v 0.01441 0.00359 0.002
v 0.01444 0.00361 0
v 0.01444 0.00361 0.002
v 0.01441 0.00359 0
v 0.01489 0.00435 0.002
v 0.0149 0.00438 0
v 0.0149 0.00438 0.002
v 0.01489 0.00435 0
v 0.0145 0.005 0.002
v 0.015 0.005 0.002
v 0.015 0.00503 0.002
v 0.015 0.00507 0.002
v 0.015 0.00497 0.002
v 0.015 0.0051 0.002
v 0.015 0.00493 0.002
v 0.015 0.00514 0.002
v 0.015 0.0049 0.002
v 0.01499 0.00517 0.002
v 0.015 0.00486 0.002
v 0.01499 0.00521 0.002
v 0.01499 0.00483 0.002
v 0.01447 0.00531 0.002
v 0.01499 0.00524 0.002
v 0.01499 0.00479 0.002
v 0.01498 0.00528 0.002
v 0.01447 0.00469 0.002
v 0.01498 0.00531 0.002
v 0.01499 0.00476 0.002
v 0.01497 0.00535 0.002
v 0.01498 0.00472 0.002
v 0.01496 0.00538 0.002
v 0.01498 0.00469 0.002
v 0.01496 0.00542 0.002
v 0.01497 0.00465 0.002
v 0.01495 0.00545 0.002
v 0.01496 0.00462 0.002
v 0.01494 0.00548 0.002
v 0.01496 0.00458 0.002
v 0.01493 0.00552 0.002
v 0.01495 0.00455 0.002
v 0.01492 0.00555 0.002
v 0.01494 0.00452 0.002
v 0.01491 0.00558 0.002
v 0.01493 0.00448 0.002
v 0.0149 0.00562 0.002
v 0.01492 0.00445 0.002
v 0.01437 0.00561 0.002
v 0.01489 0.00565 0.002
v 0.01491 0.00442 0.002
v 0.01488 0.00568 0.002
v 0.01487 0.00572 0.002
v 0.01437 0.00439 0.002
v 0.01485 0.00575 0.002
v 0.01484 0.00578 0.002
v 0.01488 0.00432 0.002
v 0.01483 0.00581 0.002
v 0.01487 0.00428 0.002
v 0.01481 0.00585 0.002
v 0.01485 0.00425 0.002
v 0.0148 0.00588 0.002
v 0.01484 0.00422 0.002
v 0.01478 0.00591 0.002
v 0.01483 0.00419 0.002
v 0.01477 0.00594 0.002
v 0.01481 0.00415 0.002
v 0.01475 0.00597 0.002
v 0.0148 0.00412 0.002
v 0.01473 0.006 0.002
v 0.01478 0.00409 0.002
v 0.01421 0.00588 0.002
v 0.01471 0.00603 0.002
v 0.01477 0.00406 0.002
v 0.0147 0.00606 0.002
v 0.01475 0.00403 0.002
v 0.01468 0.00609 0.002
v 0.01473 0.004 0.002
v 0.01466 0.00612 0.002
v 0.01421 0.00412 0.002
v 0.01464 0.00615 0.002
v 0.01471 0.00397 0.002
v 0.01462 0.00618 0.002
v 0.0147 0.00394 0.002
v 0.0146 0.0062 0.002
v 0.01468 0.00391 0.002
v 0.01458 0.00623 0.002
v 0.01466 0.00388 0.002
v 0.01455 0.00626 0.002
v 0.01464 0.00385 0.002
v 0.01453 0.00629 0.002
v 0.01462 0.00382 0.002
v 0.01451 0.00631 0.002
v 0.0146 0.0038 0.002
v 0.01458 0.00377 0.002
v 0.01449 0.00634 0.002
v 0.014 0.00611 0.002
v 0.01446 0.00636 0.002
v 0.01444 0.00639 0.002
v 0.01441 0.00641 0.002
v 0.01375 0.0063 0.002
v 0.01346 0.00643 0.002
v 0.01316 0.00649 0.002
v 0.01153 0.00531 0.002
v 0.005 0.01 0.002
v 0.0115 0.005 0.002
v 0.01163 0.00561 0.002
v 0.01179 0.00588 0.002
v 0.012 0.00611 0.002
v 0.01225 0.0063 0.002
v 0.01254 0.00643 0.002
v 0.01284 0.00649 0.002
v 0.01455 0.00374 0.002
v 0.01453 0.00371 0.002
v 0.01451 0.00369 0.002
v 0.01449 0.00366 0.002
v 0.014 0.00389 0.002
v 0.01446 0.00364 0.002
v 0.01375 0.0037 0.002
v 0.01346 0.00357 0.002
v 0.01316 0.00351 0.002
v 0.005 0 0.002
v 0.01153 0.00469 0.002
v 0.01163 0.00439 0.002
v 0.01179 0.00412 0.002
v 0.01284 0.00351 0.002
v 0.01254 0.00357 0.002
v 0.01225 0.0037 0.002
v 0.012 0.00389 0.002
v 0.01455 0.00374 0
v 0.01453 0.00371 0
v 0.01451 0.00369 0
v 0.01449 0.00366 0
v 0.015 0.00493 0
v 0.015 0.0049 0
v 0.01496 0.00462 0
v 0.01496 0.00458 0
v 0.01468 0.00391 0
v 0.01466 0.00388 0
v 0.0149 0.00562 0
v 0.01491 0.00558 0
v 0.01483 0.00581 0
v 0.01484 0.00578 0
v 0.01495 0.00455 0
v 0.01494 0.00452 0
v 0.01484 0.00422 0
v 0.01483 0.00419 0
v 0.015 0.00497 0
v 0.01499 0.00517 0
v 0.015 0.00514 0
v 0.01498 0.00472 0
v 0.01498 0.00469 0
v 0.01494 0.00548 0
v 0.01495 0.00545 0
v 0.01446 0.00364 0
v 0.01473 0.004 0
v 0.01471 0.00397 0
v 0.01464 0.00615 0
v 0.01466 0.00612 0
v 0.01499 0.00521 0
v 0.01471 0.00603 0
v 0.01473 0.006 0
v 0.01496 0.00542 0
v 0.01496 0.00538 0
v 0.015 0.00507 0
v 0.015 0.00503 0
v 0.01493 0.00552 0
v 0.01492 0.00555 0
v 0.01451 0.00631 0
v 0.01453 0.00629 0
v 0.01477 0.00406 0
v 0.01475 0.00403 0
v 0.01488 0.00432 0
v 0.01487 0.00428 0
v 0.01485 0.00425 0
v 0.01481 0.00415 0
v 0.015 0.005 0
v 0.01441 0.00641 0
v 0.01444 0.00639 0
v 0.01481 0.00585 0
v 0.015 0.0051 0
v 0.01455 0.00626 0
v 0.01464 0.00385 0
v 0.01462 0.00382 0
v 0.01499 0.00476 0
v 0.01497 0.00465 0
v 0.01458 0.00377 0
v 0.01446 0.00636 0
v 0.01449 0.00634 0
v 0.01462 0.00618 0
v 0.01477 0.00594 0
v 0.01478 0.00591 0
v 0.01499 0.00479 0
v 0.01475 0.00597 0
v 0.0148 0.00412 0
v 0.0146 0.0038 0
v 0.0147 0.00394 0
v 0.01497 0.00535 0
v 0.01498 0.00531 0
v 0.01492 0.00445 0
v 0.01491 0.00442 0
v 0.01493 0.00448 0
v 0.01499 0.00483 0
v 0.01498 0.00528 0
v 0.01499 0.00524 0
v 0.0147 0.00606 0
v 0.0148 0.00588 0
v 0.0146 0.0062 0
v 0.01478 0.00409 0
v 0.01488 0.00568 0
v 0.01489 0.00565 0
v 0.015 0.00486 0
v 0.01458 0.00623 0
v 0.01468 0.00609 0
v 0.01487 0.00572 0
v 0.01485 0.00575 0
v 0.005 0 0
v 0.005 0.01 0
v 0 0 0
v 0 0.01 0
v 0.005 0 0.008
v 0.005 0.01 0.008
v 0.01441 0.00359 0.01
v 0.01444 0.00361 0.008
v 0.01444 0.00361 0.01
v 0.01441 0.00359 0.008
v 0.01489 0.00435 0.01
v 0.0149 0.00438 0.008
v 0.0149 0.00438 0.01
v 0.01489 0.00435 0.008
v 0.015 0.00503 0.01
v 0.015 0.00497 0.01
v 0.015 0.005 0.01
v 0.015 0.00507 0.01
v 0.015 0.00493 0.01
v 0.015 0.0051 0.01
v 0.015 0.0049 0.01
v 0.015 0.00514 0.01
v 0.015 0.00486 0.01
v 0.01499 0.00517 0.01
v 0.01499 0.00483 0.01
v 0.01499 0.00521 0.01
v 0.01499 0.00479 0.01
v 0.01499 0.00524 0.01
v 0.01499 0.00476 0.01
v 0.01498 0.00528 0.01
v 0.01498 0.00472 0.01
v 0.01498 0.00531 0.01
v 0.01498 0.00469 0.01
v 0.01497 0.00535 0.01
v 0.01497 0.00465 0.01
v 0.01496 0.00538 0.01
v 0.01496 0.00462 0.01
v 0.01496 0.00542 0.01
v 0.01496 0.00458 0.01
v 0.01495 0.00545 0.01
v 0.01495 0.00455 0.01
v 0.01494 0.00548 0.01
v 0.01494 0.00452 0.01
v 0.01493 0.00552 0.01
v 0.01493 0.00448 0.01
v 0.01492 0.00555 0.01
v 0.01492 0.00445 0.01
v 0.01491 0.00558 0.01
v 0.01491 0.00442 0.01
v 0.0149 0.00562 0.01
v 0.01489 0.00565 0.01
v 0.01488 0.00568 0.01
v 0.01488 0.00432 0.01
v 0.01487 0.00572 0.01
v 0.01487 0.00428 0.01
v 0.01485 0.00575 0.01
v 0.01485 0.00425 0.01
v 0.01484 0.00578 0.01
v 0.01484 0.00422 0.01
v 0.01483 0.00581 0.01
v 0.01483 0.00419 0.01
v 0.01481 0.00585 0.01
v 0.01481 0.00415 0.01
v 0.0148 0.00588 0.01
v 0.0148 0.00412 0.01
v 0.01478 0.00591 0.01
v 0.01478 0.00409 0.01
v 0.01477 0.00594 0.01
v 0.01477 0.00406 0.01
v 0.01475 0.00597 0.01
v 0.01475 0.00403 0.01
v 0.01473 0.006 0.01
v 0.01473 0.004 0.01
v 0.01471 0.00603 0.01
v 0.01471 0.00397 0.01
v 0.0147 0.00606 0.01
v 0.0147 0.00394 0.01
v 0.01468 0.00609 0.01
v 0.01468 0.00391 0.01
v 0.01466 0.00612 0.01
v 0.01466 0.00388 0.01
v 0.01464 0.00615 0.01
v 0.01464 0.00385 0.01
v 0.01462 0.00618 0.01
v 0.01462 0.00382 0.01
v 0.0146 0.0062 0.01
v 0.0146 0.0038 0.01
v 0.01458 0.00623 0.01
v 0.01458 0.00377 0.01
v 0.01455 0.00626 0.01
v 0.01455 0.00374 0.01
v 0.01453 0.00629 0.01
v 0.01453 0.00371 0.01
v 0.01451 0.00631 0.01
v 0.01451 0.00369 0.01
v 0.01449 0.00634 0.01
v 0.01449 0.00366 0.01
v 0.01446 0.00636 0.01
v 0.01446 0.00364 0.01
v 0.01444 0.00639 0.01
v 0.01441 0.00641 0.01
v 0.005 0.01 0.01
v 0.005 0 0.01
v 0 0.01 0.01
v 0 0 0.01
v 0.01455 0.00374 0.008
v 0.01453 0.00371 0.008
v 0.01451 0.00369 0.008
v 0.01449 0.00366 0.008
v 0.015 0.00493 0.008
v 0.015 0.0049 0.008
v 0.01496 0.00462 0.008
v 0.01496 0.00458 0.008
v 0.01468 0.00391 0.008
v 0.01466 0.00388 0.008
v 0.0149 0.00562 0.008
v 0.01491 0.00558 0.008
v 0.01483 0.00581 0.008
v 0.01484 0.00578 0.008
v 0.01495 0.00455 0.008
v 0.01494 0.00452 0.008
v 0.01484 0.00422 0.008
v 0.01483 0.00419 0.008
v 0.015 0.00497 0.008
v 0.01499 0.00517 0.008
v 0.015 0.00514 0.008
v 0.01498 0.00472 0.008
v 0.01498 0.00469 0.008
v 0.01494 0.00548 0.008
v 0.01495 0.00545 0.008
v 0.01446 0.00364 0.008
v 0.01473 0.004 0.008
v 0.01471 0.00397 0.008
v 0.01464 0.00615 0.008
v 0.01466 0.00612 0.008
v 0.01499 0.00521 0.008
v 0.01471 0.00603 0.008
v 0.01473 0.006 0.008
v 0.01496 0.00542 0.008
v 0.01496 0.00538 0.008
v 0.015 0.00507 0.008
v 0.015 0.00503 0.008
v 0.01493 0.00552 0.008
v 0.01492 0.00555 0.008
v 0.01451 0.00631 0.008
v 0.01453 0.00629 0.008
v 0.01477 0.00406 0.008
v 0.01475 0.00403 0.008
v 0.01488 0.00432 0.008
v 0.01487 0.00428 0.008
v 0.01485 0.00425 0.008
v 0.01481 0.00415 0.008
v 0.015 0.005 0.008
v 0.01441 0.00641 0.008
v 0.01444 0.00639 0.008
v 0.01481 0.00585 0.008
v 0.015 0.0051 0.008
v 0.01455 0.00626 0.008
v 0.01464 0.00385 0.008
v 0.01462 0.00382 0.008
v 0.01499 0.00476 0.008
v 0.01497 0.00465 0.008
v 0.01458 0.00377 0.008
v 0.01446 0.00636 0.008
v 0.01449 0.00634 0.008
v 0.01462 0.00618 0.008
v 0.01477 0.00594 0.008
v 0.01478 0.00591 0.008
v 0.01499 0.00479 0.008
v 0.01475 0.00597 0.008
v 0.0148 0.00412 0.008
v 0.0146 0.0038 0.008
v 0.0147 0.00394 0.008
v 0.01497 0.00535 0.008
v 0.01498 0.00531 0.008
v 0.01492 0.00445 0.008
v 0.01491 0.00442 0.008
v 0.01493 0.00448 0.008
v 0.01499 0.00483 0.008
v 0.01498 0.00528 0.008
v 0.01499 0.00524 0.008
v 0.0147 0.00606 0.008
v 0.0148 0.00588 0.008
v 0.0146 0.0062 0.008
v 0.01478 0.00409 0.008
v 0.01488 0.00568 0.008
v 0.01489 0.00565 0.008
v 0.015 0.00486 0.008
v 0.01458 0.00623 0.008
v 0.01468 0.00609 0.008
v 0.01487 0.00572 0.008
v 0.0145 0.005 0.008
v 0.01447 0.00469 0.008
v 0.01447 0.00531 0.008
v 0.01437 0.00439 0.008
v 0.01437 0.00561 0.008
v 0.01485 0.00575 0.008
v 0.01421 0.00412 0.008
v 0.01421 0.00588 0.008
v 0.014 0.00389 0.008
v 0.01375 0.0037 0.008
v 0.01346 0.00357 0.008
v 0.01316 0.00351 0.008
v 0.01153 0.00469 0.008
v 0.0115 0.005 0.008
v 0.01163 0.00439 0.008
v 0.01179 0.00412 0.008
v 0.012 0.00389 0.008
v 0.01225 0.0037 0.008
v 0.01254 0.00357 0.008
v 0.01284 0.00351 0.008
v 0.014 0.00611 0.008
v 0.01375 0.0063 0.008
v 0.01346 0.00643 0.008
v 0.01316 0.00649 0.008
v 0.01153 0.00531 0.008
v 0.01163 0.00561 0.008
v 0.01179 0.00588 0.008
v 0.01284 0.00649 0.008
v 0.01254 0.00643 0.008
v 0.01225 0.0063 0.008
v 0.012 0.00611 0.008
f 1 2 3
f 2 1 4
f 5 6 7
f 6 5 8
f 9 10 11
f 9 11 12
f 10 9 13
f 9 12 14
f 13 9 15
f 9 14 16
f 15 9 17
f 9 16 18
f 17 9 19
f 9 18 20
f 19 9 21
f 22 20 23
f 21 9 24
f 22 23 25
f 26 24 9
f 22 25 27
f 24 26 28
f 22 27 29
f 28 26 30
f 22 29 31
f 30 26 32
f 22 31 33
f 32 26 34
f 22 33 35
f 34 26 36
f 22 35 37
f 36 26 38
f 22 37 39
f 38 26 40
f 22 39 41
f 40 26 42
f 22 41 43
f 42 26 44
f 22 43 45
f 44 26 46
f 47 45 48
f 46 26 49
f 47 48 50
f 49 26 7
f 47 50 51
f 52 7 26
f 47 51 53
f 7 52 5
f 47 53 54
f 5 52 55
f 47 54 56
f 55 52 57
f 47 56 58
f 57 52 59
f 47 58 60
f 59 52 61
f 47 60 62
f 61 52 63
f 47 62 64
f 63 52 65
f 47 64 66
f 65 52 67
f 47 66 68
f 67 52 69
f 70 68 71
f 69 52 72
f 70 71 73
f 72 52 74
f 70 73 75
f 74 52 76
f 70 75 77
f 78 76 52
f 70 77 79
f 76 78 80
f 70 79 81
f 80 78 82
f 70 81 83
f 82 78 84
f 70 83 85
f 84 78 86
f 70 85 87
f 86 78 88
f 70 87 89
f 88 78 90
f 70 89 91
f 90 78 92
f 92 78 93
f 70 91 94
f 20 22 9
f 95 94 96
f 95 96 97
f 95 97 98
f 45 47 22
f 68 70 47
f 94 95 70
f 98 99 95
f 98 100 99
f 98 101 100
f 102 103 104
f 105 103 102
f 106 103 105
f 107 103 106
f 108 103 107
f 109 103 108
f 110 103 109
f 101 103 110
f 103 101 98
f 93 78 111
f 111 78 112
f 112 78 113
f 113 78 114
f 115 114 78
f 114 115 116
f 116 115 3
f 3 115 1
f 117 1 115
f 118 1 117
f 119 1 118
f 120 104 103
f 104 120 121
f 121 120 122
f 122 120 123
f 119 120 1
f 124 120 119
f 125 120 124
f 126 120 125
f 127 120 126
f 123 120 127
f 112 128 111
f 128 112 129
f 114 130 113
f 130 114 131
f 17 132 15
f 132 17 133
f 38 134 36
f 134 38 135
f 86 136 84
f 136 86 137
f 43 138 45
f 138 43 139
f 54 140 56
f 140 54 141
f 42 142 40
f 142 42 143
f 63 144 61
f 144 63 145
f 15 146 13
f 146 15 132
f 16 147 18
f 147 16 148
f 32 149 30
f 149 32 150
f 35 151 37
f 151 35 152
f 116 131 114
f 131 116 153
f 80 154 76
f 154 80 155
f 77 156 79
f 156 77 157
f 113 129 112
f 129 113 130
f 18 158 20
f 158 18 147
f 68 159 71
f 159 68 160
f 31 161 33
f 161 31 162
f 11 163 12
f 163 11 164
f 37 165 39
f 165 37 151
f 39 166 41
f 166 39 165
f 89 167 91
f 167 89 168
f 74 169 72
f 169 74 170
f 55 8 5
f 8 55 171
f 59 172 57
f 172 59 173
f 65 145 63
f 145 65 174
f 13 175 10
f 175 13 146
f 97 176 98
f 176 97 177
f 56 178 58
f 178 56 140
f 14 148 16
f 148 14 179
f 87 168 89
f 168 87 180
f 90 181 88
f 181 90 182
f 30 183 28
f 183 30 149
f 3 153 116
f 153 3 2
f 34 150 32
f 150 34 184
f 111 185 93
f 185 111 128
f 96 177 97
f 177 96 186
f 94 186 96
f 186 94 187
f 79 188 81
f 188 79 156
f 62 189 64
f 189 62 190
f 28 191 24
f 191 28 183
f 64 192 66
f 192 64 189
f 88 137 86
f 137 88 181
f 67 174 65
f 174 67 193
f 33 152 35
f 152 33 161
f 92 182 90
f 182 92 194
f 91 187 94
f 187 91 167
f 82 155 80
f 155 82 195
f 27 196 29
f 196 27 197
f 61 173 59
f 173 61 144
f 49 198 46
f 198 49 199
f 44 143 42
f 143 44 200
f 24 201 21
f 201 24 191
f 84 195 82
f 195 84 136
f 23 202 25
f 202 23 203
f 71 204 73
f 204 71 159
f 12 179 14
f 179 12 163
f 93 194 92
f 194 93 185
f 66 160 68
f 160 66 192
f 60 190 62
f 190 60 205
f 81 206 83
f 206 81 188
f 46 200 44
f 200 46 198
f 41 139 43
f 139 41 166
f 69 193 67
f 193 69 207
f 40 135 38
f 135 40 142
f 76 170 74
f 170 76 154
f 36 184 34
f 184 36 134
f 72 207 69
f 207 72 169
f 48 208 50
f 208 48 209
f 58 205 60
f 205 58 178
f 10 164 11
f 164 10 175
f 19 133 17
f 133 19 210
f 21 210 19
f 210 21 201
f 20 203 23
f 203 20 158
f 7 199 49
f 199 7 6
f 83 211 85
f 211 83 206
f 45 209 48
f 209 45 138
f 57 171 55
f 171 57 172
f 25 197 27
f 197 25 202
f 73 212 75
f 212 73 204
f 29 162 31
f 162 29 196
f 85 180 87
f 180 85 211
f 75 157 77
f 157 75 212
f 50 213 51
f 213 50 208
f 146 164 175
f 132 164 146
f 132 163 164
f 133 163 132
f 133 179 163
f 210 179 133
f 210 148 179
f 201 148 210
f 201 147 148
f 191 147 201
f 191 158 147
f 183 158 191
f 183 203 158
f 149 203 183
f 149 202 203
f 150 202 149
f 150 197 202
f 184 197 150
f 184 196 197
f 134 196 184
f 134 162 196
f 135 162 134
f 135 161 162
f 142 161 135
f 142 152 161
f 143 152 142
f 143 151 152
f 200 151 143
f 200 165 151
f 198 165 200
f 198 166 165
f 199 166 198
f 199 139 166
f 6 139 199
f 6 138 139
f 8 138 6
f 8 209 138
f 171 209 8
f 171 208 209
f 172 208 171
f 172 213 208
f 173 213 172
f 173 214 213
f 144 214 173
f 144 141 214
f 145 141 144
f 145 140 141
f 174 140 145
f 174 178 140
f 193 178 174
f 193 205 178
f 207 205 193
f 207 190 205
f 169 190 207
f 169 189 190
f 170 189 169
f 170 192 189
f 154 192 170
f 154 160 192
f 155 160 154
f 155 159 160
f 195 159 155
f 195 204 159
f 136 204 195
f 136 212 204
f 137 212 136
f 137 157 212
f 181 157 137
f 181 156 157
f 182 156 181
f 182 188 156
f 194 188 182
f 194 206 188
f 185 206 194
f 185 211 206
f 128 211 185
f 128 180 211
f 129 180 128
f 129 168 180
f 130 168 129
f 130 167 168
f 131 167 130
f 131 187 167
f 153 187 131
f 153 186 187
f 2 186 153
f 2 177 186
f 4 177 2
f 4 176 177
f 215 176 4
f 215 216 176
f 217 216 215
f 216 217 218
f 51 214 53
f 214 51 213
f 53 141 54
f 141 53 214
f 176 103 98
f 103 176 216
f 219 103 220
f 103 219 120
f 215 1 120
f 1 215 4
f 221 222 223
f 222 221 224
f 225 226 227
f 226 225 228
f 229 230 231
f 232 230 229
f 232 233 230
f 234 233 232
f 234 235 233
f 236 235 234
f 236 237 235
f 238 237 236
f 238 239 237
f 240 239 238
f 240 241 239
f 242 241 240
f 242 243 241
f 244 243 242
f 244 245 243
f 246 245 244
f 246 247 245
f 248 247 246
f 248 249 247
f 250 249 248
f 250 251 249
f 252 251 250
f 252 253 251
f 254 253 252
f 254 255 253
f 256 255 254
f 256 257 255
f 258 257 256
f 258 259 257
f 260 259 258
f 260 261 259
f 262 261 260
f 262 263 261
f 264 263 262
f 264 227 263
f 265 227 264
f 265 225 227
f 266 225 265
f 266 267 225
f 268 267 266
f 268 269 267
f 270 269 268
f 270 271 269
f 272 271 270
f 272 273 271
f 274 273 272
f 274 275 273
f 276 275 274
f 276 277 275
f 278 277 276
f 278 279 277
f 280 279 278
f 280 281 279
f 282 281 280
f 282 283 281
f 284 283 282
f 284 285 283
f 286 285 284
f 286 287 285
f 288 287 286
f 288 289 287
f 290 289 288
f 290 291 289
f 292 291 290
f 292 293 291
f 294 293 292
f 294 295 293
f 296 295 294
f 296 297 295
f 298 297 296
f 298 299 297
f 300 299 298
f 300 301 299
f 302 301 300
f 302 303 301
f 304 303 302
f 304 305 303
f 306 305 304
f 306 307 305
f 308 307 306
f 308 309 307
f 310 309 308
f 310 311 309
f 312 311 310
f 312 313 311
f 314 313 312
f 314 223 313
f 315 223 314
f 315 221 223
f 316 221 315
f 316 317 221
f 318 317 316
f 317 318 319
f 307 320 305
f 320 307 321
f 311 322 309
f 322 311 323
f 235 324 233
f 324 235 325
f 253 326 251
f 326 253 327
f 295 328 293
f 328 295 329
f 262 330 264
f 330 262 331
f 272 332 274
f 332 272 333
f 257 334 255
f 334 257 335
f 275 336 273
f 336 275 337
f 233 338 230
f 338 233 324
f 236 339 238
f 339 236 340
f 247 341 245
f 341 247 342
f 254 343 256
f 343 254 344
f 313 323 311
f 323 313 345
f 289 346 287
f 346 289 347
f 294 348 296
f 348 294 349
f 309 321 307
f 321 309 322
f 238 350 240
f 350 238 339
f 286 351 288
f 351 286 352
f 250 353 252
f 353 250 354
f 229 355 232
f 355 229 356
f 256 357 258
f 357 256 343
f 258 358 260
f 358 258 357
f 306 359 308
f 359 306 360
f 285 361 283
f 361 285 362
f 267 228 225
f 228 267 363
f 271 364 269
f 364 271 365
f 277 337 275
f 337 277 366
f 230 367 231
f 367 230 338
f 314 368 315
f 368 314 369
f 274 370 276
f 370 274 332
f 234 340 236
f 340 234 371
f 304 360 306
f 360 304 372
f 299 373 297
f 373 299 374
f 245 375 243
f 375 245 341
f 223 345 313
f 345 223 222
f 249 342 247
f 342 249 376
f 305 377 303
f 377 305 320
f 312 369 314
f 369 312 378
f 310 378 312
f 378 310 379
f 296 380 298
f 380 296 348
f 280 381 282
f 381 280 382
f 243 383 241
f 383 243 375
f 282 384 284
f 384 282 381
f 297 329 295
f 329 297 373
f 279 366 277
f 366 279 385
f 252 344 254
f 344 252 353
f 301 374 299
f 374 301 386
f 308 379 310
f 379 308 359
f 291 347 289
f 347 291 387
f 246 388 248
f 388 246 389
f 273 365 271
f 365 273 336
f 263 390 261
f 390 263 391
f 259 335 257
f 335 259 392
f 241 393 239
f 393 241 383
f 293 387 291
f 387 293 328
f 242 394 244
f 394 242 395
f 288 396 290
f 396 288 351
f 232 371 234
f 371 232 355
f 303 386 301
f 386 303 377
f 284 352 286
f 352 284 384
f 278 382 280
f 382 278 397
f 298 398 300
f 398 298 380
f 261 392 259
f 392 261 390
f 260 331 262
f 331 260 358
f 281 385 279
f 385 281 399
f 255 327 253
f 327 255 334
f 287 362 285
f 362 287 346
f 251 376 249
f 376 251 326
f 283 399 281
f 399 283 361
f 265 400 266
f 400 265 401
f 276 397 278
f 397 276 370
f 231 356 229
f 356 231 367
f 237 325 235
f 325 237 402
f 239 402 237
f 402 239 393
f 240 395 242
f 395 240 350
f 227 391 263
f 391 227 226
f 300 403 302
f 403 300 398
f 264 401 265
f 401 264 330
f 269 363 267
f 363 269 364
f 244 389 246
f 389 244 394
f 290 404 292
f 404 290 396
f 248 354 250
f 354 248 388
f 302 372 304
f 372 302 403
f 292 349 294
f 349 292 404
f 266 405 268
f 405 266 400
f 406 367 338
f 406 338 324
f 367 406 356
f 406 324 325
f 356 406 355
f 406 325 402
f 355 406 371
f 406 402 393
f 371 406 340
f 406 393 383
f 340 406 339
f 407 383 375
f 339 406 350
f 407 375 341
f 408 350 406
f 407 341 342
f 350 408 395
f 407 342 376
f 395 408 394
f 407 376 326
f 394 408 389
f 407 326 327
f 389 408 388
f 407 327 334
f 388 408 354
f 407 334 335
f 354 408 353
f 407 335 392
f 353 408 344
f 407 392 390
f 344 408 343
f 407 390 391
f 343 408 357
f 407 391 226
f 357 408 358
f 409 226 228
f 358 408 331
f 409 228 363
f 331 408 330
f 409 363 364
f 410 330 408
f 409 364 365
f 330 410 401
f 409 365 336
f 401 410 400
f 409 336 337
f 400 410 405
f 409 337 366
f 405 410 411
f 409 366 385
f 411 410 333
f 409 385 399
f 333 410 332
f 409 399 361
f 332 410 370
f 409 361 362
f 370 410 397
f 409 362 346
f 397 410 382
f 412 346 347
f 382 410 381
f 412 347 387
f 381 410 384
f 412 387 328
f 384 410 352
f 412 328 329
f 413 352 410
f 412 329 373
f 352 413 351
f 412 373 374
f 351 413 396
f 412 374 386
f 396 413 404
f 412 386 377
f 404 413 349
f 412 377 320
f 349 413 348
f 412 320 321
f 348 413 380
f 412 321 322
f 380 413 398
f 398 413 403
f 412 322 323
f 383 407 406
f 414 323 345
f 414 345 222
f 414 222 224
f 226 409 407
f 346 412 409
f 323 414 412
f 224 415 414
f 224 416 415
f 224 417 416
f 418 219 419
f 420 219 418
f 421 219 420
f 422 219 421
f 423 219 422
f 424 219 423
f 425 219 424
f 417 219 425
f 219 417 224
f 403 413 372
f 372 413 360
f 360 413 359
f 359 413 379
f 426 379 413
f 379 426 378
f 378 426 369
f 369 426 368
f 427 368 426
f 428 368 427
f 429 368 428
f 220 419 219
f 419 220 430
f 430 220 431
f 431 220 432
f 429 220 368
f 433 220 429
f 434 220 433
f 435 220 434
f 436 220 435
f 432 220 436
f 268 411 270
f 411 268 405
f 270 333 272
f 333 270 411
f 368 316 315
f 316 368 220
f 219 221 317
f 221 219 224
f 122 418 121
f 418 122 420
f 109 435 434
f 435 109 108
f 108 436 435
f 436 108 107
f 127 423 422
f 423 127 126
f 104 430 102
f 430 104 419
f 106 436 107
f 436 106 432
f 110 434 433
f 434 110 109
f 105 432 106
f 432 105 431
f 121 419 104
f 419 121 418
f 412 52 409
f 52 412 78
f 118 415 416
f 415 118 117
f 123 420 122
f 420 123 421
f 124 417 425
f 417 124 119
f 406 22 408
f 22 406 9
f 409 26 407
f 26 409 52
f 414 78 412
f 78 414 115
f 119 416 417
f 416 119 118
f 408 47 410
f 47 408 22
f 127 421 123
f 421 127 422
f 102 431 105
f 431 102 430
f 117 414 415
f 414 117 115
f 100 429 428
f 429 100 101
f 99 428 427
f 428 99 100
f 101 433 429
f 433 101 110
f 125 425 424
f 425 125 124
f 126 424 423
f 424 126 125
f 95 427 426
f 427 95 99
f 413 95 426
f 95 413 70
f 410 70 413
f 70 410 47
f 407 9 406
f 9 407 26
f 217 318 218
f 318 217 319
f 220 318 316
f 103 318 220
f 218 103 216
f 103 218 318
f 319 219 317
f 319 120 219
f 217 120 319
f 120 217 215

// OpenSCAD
scale([0.001, 0.001, 0.001])
union() {    
    cube([5, 10, 10]);
    
    translate([15, 10, 0])
    rotate([0, 0, 180])
    get_joint();
}

module get_joint() {
    union() {
        get_cover();
    
        translate([0, 0, 8])
        get_cover();
        
        translate([2, 5, 0])
        cylinder(10, 1.5, 1.5, $fn=30);
    } 
}

module get_cover() {
    union() {
        radius = 2;
        angles = [45, 135];
        points = [
            for(a = [angles[0]:1:angles[1]]) [radius * cos(a),      radius * sin(a)]
        ];
        translate([2, 5, 0])
        rotate([0, 0, 90])
        linear_extrude(height = 2, center = false, convexity = 10)
        polygon(concat([[0, 0]], points));
            
        translate([2, 5, 0])
        rotate([0, 0, 90])
        linear_extrude(height = 2, center = false, convexity = 10)
        polygon([
            [5, -8], 
            [radius * cos(angles[0]), radius * sin(angles[0])], 
            [radius * cos(angles[1]), radius * sin(angles[1])],
            [-5, -8]
        ]); 
    }
}
